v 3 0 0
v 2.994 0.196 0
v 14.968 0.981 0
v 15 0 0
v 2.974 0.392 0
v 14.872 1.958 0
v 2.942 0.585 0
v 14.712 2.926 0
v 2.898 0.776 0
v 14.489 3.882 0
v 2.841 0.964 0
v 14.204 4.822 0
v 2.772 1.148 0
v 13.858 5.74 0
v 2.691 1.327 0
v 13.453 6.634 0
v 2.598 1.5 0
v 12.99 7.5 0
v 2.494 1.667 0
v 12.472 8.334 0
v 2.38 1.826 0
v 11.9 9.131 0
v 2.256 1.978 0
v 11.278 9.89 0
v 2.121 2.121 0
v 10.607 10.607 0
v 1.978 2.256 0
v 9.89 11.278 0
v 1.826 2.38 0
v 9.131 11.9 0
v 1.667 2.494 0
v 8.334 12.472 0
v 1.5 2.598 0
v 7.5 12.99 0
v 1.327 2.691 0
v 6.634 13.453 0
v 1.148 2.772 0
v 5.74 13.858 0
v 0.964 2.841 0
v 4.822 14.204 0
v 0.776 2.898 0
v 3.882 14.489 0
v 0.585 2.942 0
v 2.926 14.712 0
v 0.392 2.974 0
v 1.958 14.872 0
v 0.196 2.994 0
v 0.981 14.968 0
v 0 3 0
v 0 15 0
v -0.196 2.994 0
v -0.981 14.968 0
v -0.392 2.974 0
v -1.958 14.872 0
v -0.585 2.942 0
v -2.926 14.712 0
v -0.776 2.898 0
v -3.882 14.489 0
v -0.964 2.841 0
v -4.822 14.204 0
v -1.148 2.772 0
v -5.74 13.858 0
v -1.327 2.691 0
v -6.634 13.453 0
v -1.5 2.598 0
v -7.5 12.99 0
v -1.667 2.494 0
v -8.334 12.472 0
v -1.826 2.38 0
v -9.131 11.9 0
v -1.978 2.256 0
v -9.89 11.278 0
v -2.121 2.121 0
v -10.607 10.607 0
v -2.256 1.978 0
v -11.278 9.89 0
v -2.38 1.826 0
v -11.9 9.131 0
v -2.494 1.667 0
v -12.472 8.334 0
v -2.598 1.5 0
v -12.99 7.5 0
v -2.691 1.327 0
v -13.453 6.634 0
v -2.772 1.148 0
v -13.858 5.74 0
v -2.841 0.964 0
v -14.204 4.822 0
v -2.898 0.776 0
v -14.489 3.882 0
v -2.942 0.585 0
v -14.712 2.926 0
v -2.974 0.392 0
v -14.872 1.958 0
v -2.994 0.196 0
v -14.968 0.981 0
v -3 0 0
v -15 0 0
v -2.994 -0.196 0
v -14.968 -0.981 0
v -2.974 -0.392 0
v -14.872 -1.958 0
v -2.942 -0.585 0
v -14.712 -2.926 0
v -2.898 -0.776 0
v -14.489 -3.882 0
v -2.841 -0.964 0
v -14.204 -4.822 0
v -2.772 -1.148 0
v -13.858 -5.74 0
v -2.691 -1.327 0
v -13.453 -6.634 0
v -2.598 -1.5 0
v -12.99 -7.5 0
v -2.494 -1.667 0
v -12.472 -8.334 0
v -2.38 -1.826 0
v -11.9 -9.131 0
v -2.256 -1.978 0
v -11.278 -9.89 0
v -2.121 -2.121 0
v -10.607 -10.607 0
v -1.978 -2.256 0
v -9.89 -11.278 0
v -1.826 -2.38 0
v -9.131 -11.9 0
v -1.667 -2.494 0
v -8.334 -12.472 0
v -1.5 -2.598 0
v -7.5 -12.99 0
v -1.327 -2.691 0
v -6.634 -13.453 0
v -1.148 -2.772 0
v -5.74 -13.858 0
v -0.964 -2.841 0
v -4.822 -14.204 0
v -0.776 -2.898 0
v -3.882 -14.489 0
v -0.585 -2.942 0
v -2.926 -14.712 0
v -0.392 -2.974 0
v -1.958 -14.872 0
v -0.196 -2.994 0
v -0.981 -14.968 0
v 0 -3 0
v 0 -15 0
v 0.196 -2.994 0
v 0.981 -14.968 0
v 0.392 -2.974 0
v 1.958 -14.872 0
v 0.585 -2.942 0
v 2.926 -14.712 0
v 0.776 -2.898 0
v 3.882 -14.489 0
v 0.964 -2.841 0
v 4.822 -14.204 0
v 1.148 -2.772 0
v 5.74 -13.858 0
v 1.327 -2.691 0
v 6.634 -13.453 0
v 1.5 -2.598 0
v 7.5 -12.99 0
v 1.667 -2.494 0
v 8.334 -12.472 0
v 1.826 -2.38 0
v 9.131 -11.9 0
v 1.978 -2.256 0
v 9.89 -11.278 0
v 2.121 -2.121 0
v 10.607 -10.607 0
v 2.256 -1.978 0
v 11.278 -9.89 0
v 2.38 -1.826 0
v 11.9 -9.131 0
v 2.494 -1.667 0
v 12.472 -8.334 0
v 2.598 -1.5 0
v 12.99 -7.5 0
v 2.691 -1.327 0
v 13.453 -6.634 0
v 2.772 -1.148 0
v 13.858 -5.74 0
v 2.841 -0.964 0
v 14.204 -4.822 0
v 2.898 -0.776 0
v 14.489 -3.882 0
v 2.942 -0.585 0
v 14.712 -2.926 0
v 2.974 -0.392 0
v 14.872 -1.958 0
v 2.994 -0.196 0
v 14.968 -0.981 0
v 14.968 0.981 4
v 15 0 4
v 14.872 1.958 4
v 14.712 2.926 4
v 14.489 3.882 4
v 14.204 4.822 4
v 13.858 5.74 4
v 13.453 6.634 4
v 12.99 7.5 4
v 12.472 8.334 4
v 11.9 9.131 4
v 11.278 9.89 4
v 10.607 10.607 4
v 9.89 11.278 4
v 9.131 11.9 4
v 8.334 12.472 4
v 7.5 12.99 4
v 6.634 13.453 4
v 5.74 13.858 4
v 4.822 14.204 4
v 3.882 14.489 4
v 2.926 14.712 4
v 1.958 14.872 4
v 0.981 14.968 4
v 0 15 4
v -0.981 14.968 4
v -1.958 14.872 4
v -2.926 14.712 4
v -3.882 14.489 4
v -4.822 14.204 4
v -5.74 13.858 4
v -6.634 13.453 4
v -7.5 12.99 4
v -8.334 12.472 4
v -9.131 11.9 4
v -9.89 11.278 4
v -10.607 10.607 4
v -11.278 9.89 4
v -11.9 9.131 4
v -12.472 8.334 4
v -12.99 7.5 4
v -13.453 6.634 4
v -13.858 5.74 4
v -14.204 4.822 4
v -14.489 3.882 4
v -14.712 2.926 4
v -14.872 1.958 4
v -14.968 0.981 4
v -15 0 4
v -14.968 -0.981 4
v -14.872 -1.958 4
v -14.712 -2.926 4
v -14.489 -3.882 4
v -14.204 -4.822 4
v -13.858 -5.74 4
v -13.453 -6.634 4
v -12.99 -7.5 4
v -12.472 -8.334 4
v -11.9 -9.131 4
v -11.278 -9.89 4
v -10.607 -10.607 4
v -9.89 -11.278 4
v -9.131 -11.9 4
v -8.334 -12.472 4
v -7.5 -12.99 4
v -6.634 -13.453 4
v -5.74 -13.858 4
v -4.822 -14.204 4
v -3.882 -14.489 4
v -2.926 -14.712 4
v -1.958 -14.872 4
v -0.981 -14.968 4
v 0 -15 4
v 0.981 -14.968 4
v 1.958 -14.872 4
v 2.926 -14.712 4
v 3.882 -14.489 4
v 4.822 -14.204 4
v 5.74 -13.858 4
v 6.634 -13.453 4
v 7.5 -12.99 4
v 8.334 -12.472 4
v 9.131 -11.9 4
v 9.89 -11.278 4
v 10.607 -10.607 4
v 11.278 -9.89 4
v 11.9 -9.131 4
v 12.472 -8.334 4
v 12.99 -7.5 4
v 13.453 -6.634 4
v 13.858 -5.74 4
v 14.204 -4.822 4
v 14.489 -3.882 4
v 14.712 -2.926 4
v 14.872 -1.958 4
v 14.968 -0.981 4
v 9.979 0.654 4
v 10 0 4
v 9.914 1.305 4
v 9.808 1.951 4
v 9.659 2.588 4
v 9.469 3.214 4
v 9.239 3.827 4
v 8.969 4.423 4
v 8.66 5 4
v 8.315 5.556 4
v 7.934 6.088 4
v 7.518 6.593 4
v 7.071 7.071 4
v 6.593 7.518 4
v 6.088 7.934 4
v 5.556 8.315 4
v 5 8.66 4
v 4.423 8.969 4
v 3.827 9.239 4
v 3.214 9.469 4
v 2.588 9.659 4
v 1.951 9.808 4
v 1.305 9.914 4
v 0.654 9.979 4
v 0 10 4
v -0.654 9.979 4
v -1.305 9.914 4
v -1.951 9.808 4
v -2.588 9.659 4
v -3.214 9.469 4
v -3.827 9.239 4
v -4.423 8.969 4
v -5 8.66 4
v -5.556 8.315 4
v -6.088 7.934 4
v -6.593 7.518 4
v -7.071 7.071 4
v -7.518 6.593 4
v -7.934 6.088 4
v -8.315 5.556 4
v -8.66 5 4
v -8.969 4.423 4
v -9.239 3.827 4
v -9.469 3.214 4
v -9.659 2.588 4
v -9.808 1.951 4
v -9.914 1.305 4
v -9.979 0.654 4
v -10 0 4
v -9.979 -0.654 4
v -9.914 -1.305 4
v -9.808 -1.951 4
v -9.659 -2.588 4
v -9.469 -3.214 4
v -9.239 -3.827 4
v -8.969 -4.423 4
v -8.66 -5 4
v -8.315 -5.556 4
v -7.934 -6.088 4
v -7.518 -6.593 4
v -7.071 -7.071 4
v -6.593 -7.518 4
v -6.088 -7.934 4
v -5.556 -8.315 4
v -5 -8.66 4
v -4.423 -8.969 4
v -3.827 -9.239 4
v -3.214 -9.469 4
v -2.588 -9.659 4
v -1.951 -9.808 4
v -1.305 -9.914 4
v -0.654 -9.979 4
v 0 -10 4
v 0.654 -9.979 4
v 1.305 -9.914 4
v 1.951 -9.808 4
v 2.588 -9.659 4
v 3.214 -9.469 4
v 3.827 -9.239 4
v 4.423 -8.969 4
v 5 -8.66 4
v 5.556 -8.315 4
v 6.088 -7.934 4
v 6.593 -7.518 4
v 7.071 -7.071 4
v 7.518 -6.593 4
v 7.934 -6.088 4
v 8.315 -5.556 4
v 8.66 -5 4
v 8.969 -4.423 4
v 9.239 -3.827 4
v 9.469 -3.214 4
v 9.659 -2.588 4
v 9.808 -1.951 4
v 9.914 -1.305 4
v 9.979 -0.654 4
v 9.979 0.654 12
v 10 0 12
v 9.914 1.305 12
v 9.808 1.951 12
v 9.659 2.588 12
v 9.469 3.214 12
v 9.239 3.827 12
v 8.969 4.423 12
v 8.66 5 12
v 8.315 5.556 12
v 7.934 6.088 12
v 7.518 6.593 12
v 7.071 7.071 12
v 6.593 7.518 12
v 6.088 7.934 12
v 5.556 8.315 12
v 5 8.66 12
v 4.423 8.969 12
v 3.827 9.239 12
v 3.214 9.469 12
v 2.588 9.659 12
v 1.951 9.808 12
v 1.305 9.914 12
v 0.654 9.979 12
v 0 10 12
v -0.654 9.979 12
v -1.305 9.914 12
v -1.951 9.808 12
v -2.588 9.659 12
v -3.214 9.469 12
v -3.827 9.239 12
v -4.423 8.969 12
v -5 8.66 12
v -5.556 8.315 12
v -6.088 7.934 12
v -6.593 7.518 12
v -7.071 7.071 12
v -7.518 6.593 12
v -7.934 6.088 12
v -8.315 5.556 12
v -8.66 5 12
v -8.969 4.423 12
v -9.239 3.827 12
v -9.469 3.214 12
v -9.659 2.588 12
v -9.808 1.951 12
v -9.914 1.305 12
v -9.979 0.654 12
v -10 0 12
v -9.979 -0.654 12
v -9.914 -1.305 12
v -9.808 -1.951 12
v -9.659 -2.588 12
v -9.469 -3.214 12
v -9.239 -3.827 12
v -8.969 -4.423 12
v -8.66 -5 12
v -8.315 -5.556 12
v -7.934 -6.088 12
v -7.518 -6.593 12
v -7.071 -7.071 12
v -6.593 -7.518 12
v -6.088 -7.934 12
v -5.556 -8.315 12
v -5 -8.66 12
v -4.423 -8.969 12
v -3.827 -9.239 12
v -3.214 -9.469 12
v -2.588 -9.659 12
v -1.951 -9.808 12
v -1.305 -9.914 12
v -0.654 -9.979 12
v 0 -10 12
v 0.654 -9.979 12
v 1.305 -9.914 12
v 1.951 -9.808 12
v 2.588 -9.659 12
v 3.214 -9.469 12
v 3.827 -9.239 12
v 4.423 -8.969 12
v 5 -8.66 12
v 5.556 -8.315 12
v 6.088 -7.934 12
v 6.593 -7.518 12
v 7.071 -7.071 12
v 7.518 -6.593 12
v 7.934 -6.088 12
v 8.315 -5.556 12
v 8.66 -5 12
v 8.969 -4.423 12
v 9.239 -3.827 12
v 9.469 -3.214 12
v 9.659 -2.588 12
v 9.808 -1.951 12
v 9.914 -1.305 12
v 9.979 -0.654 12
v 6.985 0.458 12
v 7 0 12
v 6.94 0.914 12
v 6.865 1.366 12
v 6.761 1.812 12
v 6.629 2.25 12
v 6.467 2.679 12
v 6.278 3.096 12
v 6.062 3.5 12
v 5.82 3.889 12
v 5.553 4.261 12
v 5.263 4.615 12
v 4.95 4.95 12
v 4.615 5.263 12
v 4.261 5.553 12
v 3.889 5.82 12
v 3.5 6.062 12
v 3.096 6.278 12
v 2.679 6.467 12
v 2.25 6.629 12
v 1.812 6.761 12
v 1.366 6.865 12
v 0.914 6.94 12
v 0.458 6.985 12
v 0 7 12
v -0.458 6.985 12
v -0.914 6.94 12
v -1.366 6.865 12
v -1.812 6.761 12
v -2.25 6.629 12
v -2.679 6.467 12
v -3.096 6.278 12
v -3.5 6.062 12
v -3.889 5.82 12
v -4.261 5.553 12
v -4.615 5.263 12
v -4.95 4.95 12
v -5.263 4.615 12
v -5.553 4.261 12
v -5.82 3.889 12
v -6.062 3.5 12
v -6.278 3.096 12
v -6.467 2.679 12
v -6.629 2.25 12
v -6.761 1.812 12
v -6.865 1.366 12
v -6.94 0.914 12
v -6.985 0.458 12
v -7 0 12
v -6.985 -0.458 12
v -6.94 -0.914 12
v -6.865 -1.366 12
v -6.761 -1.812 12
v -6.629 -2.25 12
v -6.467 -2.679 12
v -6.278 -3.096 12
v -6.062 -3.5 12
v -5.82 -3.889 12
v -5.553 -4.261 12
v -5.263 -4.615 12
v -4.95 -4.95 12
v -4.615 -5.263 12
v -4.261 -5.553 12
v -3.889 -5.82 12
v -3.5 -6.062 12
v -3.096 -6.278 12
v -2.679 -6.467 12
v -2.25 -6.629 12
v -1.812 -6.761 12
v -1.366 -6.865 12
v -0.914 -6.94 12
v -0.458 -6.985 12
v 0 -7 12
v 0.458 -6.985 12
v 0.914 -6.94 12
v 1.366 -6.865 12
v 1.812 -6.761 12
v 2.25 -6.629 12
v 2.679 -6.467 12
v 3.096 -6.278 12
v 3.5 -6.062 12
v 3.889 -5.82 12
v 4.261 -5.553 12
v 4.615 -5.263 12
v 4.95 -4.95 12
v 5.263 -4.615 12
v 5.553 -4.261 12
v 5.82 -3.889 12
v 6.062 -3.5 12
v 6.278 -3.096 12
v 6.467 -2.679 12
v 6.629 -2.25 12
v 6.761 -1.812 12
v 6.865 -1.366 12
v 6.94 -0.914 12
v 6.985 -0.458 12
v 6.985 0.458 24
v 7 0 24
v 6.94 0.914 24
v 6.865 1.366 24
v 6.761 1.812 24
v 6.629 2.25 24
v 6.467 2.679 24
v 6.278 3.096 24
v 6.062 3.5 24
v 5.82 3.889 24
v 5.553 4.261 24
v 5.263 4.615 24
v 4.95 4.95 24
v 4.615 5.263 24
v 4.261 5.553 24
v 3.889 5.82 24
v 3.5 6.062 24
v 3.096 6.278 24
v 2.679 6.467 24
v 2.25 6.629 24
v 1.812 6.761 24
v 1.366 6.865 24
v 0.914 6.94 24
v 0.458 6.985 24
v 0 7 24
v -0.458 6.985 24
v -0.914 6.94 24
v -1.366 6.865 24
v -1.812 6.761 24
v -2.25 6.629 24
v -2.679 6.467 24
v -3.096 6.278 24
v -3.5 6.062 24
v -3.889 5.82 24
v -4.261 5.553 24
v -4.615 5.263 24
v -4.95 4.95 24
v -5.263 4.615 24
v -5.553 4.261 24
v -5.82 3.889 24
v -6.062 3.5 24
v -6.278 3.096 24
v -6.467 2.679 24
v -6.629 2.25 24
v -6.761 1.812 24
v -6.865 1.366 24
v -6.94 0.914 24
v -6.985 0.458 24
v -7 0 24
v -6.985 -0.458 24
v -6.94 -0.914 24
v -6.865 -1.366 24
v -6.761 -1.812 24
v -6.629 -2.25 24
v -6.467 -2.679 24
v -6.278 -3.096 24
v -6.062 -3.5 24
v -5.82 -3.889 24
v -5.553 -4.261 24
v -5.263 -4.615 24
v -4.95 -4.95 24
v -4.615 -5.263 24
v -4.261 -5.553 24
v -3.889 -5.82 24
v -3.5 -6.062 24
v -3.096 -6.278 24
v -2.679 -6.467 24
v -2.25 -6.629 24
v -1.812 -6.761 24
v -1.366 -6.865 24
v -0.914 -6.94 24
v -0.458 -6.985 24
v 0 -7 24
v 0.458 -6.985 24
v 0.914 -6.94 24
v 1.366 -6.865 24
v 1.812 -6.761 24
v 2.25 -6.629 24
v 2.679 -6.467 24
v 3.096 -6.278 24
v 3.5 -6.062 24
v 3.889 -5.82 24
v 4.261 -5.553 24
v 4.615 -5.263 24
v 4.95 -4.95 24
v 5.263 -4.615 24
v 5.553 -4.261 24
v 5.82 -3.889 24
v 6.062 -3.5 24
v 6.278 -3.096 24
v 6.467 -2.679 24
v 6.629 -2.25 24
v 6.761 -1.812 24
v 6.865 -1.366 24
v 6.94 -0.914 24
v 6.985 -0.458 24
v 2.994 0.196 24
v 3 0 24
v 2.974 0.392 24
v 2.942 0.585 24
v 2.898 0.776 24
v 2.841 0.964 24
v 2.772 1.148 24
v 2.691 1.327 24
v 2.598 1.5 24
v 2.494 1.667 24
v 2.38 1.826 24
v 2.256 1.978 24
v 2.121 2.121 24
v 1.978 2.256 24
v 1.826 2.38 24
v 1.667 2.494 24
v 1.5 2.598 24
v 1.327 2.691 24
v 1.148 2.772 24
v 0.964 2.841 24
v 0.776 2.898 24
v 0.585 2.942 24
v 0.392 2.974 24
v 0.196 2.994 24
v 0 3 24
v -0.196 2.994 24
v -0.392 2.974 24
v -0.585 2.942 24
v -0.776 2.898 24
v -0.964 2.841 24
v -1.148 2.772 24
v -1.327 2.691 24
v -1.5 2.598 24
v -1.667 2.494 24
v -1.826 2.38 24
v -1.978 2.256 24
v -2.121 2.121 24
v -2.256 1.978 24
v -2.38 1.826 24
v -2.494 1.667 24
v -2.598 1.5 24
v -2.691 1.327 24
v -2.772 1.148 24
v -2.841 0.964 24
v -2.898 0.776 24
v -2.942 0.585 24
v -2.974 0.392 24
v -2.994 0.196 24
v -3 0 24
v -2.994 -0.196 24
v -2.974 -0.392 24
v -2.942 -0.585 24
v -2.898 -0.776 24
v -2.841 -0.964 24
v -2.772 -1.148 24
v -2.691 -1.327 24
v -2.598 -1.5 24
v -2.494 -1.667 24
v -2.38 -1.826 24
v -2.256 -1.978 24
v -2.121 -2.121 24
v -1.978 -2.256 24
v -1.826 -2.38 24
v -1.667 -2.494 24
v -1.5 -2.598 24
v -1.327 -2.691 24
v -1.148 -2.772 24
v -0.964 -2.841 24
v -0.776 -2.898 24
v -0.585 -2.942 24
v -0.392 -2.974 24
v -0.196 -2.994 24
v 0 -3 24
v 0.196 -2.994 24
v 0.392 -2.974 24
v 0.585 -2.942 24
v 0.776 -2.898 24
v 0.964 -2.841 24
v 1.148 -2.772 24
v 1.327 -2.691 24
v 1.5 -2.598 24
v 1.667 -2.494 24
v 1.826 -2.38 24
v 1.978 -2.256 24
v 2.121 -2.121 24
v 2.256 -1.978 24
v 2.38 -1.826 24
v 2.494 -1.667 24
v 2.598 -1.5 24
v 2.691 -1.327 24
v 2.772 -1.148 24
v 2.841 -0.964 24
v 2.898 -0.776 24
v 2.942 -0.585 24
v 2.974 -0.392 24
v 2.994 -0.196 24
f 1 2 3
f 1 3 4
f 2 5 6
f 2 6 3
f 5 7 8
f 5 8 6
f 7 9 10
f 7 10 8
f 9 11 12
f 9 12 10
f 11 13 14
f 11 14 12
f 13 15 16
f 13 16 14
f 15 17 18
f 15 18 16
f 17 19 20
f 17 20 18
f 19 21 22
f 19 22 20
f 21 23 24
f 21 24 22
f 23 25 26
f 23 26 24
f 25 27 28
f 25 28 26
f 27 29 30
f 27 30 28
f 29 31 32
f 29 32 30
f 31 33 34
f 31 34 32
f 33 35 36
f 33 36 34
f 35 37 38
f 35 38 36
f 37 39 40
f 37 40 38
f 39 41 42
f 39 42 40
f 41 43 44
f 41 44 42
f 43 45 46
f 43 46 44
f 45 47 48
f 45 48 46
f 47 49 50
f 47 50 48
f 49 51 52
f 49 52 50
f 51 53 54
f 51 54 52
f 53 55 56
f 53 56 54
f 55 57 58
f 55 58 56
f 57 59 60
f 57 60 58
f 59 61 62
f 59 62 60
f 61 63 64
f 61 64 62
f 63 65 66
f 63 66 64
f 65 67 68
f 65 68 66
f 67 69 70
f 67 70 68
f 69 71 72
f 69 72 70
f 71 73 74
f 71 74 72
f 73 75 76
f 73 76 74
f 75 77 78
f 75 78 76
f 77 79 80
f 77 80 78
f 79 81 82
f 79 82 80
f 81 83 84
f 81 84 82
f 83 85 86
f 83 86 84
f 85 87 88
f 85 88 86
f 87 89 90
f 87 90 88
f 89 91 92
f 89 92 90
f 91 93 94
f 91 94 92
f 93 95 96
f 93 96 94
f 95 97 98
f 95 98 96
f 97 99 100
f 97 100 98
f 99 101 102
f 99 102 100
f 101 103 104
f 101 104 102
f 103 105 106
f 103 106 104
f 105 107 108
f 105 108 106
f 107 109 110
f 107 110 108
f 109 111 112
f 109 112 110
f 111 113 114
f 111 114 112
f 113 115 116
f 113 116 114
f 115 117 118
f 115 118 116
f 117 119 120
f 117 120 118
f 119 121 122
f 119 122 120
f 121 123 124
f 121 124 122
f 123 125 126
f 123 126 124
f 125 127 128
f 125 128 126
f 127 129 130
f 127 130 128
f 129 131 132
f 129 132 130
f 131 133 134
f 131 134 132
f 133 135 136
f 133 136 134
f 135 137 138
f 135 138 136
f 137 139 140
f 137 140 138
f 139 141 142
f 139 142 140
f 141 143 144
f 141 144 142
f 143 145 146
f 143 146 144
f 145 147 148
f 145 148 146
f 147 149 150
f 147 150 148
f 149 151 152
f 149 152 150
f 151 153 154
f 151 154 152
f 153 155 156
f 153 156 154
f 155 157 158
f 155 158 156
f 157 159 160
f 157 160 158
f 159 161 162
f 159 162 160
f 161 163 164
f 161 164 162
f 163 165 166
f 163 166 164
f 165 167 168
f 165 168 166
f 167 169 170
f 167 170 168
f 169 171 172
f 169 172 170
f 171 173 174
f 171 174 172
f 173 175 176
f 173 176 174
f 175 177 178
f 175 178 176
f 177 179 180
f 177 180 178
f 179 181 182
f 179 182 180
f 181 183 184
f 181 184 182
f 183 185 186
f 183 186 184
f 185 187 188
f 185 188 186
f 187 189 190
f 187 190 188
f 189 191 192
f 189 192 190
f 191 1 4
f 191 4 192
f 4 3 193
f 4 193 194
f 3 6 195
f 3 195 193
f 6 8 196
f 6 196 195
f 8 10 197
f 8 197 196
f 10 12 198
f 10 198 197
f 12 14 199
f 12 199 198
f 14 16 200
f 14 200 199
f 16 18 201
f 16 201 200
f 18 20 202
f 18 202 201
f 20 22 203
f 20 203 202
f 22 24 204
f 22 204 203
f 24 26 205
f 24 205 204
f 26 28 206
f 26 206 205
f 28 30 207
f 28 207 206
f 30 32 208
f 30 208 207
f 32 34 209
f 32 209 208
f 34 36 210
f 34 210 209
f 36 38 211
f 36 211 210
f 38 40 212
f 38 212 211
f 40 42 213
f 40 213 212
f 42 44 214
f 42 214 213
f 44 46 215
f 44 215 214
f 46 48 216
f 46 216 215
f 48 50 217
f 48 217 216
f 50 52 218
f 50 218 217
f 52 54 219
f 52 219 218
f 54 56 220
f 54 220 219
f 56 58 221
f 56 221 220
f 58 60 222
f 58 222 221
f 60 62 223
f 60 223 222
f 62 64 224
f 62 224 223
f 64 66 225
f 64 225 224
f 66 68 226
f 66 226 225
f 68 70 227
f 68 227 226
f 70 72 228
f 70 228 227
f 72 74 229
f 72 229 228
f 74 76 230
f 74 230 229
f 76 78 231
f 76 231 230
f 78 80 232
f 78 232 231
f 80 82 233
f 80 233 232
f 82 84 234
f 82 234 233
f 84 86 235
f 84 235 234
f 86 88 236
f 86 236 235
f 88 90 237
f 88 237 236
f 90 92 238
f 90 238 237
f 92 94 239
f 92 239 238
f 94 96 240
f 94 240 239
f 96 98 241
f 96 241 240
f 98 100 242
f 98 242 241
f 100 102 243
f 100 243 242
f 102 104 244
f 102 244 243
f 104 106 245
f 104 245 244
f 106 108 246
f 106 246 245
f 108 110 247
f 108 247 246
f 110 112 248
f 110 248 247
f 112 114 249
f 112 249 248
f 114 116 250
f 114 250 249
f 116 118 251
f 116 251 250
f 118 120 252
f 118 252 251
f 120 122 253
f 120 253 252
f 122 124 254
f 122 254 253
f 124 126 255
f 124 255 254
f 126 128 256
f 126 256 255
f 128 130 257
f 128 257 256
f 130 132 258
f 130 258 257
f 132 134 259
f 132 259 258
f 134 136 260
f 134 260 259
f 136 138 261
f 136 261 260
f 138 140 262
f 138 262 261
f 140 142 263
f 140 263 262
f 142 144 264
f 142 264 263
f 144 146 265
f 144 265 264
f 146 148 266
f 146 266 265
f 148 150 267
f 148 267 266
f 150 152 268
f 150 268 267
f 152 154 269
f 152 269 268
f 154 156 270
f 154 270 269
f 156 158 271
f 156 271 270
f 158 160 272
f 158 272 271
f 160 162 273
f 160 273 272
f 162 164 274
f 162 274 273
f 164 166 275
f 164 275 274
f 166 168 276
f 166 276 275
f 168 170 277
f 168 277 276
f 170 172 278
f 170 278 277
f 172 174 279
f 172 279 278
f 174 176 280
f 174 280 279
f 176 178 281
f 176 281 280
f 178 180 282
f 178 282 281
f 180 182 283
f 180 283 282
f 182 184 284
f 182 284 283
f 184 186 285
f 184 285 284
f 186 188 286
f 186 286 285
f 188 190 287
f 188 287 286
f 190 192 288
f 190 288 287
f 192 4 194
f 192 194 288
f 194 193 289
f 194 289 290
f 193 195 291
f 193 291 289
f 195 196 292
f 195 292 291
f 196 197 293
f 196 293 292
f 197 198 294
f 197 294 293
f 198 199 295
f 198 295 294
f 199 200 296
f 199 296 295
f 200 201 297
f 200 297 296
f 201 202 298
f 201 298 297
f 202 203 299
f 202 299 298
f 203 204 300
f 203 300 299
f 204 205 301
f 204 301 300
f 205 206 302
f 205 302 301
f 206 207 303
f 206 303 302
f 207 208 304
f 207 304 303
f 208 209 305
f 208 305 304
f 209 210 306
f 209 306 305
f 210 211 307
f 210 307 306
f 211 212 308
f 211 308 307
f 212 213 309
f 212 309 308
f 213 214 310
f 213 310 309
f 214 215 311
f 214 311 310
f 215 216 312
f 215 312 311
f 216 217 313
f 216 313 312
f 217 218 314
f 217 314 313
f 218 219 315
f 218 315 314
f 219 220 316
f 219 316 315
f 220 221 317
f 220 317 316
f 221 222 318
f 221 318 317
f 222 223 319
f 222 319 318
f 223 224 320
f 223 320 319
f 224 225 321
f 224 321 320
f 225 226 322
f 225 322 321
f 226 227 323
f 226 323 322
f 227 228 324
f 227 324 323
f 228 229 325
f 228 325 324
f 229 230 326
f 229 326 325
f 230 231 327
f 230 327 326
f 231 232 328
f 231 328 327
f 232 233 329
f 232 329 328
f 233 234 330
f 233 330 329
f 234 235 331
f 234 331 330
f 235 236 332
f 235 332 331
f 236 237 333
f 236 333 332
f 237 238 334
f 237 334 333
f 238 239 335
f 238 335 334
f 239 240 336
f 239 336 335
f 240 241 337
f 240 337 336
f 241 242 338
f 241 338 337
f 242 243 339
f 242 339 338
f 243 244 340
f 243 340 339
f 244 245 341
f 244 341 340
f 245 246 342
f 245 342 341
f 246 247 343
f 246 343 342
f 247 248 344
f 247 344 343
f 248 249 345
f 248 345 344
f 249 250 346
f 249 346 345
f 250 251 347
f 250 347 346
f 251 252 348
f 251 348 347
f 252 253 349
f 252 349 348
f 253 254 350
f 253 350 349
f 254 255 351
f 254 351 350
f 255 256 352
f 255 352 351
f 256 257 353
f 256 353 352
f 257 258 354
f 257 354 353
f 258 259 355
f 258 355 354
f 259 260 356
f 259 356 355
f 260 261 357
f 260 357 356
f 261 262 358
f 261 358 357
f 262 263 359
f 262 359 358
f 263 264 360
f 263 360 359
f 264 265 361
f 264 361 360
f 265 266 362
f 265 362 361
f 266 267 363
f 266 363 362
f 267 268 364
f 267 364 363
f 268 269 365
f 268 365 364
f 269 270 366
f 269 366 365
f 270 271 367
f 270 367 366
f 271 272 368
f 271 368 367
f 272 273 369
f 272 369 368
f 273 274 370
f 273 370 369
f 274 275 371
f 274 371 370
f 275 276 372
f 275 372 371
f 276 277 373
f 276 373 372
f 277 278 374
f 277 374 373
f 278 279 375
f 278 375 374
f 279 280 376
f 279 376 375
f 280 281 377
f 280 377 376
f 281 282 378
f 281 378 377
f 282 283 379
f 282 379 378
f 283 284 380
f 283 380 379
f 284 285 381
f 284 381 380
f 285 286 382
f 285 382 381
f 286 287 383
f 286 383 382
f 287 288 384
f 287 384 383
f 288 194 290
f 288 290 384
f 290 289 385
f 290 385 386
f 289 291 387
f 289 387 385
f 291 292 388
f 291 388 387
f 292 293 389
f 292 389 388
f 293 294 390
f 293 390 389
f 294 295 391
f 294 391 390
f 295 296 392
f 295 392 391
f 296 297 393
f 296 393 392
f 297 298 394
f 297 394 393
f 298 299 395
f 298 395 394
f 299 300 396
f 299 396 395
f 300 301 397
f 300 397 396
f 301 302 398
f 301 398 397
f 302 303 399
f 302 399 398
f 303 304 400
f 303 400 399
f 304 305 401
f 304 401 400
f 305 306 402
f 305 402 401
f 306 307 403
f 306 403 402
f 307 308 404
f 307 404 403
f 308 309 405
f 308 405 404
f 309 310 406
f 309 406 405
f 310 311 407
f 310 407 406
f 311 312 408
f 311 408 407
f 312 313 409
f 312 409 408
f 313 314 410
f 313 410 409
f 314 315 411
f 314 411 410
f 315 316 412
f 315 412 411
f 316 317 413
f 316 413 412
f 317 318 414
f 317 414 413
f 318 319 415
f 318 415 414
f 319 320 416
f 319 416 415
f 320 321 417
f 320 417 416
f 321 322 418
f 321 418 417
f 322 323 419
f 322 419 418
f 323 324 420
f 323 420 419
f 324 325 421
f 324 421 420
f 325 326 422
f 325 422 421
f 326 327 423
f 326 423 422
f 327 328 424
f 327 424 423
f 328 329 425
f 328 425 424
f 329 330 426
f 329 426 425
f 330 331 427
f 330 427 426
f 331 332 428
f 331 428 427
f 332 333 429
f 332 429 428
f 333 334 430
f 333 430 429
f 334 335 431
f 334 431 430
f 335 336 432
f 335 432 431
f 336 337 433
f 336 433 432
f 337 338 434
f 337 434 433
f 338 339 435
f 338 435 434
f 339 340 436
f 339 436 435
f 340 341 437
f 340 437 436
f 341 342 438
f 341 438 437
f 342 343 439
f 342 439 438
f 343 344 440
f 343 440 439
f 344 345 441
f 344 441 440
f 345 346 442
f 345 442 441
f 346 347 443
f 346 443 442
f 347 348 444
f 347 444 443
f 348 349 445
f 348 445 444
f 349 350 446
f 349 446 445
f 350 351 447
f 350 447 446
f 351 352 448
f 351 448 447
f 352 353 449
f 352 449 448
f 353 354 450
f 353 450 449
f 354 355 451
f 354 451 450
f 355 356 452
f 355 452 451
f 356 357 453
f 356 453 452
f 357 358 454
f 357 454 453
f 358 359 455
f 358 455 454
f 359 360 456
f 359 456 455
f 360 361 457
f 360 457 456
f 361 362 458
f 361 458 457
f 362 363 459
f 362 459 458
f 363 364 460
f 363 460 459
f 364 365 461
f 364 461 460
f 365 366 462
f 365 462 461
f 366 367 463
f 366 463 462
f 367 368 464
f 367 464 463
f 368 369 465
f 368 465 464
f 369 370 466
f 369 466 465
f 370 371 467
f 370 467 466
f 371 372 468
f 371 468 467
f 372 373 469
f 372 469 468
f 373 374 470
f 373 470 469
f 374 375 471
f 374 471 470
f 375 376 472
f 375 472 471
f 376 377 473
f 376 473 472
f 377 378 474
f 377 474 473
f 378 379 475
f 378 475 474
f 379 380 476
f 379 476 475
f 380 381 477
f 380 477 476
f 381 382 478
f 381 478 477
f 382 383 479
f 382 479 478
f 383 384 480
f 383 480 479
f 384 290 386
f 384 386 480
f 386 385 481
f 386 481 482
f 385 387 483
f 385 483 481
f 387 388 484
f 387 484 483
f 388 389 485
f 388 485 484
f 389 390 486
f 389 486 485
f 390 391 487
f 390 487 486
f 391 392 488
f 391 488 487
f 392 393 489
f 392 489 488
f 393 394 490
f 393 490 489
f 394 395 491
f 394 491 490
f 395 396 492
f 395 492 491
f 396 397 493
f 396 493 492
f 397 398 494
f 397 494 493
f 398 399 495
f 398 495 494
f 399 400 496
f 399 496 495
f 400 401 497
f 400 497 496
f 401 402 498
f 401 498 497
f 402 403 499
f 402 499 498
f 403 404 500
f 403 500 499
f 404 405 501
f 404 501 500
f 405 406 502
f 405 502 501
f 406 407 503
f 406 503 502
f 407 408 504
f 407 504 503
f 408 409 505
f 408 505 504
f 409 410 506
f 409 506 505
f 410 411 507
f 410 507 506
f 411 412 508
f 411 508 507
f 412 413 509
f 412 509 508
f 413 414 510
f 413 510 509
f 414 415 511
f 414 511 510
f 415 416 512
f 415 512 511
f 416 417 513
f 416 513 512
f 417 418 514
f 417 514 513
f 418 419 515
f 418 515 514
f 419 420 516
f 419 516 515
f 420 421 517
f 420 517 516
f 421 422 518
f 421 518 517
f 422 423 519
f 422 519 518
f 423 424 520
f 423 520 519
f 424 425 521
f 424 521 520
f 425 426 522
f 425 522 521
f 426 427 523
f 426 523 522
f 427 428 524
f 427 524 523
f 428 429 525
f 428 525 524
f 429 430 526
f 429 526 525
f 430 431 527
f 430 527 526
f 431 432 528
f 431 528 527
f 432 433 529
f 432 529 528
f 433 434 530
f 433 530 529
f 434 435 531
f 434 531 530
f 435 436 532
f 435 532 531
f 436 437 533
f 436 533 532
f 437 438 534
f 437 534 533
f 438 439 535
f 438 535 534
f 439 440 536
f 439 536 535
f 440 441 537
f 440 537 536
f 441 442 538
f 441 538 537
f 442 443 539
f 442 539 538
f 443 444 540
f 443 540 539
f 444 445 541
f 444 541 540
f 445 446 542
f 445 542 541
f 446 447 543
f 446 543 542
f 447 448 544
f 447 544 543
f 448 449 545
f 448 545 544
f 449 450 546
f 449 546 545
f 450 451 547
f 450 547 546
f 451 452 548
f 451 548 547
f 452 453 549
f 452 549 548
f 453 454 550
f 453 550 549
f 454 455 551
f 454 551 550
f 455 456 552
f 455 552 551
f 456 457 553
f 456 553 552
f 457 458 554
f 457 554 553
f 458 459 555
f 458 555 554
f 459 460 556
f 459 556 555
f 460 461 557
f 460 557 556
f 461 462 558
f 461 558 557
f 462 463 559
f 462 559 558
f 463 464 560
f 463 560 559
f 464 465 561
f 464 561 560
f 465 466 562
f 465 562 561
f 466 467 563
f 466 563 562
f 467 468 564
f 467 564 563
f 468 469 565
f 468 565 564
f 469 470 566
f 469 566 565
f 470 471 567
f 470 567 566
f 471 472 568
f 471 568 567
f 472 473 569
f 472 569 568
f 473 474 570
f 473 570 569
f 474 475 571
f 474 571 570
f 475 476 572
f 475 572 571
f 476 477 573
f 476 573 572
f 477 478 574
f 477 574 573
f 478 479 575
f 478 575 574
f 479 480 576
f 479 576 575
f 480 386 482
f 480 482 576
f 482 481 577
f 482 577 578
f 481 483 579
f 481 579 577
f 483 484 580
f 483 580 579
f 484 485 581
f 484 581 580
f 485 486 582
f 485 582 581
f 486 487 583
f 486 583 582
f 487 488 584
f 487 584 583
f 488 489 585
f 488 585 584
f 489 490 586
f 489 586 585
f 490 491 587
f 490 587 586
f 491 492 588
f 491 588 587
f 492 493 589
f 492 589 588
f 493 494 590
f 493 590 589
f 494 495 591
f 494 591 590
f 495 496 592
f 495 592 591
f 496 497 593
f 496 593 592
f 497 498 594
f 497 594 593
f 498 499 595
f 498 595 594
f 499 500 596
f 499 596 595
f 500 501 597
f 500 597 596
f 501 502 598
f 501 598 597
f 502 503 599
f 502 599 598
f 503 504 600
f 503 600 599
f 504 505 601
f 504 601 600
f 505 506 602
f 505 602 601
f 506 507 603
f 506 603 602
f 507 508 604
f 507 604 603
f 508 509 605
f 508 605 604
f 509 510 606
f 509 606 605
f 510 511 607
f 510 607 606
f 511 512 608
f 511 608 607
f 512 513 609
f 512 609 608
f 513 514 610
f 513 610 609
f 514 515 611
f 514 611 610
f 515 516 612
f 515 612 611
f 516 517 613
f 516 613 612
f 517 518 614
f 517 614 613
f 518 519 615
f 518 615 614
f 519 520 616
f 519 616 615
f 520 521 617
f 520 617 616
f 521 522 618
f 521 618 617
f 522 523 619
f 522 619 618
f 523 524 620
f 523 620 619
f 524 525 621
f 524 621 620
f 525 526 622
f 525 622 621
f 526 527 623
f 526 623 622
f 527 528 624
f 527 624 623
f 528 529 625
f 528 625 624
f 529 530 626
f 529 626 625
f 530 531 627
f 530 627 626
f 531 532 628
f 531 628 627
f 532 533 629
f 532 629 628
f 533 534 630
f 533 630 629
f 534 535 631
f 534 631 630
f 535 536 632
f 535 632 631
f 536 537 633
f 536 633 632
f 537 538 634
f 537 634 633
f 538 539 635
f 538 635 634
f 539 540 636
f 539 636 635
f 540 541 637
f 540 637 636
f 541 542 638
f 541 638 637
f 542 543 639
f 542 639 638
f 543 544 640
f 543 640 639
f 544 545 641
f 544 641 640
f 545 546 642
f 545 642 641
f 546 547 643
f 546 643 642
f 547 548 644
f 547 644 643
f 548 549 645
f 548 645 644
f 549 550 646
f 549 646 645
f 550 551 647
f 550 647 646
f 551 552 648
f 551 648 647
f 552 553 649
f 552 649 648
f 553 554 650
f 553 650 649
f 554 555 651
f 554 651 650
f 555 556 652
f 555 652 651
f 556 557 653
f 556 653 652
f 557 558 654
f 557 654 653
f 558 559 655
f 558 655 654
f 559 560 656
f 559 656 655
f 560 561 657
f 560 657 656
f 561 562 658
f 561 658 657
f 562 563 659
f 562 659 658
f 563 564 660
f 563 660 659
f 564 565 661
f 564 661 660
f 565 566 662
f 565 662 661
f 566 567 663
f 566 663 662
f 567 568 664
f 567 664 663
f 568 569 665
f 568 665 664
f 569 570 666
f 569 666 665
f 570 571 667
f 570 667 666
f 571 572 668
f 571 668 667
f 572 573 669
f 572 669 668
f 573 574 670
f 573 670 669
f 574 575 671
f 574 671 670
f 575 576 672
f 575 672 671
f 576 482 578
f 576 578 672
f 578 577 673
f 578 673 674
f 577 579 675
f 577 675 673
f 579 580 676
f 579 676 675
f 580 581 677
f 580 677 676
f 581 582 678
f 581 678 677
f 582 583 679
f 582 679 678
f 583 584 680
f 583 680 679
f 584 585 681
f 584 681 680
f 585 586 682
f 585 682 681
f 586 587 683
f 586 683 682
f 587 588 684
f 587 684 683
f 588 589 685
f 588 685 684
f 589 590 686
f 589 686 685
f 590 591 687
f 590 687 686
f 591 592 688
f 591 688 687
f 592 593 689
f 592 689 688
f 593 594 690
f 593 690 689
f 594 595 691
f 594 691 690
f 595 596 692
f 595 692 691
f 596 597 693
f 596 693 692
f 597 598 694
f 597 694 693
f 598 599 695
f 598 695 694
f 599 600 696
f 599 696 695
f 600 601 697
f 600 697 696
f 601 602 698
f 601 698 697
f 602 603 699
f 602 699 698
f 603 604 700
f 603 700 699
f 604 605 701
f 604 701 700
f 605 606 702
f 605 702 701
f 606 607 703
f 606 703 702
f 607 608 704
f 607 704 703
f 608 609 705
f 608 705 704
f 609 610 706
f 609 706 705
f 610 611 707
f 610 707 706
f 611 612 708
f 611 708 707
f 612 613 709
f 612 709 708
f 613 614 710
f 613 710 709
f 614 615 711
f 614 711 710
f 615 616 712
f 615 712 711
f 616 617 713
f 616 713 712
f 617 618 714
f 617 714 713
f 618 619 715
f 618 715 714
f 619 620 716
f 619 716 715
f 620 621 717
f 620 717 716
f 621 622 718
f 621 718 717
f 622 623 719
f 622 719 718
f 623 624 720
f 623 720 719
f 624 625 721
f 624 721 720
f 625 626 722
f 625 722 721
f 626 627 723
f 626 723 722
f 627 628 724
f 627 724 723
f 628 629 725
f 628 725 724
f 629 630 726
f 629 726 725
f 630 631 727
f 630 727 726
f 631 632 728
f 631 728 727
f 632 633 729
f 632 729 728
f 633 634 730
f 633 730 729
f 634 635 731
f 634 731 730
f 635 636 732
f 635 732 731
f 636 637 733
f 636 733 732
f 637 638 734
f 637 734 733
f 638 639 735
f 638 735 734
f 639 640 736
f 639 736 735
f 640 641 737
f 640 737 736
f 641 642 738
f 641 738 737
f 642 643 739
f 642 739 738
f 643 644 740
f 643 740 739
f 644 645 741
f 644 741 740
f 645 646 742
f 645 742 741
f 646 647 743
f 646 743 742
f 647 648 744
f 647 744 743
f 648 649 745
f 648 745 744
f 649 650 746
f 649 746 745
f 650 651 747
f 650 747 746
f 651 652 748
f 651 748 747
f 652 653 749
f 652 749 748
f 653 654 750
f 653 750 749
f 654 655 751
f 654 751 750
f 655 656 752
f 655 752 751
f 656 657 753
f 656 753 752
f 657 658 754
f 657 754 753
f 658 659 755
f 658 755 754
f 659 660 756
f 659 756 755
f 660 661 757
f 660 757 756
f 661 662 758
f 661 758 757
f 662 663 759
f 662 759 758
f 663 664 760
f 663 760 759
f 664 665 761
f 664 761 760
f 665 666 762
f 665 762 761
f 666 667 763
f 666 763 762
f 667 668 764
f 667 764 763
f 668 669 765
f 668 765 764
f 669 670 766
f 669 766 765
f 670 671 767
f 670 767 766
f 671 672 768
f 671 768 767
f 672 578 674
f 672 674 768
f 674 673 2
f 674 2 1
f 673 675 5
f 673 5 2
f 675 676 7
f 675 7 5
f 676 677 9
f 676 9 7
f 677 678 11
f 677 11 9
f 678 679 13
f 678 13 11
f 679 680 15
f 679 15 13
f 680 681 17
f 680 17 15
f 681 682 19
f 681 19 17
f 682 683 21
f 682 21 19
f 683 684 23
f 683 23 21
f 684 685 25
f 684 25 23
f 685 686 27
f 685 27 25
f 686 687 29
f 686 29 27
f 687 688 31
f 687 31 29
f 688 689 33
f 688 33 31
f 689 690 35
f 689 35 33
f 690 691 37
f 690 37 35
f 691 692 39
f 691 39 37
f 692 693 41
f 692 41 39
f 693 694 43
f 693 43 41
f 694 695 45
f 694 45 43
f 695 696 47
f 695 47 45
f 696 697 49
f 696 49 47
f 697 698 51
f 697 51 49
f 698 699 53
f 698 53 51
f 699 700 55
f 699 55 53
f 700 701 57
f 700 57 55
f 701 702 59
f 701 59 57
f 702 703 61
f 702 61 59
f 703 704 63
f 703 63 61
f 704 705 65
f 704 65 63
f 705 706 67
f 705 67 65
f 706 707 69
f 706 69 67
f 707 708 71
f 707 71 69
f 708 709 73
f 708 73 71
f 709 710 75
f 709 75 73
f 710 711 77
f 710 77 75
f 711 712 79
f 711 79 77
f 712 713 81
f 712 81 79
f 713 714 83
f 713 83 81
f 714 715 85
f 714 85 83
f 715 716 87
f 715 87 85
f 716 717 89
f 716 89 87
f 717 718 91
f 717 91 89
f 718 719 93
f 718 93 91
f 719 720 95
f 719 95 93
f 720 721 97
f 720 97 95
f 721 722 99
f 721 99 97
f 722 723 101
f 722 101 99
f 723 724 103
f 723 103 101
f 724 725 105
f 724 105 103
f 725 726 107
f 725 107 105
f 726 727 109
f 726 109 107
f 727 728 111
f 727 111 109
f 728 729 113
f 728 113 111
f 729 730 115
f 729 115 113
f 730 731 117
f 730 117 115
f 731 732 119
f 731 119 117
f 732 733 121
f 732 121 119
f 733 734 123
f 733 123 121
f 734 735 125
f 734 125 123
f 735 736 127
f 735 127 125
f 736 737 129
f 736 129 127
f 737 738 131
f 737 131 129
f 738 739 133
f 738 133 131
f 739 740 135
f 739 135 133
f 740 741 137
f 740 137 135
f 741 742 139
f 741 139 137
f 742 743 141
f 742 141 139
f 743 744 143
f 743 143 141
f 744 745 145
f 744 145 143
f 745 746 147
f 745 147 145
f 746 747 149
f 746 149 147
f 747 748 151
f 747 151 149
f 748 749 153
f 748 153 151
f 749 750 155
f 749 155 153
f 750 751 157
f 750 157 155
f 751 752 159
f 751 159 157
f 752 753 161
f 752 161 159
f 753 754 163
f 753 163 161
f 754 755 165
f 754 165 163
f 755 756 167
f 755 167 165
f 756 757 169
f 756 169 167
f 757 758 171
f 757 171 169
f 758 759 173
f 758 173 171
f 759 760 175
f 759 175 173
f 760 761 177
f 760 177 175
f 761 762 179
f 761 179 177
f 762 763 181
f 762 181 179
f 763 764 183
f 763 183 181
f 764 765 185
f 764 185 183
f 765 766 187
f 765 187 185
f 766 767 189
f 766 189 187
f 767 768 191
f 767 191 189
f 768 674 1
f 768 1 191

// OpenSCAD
// Original MechIntel educational model. CC0-1.0. Units: mm.
// Not a standardized or load-rated component.
$fn=96;
// Section points: [radius, height], mm. Edit to change the profile.
section=[[3, 0], [15, 0], [15, 4], [10, 4], [10, 12], [7, 12], [7, 24], [3, 24]];
rotate_extrude($fn=96) polygon(points=section);
